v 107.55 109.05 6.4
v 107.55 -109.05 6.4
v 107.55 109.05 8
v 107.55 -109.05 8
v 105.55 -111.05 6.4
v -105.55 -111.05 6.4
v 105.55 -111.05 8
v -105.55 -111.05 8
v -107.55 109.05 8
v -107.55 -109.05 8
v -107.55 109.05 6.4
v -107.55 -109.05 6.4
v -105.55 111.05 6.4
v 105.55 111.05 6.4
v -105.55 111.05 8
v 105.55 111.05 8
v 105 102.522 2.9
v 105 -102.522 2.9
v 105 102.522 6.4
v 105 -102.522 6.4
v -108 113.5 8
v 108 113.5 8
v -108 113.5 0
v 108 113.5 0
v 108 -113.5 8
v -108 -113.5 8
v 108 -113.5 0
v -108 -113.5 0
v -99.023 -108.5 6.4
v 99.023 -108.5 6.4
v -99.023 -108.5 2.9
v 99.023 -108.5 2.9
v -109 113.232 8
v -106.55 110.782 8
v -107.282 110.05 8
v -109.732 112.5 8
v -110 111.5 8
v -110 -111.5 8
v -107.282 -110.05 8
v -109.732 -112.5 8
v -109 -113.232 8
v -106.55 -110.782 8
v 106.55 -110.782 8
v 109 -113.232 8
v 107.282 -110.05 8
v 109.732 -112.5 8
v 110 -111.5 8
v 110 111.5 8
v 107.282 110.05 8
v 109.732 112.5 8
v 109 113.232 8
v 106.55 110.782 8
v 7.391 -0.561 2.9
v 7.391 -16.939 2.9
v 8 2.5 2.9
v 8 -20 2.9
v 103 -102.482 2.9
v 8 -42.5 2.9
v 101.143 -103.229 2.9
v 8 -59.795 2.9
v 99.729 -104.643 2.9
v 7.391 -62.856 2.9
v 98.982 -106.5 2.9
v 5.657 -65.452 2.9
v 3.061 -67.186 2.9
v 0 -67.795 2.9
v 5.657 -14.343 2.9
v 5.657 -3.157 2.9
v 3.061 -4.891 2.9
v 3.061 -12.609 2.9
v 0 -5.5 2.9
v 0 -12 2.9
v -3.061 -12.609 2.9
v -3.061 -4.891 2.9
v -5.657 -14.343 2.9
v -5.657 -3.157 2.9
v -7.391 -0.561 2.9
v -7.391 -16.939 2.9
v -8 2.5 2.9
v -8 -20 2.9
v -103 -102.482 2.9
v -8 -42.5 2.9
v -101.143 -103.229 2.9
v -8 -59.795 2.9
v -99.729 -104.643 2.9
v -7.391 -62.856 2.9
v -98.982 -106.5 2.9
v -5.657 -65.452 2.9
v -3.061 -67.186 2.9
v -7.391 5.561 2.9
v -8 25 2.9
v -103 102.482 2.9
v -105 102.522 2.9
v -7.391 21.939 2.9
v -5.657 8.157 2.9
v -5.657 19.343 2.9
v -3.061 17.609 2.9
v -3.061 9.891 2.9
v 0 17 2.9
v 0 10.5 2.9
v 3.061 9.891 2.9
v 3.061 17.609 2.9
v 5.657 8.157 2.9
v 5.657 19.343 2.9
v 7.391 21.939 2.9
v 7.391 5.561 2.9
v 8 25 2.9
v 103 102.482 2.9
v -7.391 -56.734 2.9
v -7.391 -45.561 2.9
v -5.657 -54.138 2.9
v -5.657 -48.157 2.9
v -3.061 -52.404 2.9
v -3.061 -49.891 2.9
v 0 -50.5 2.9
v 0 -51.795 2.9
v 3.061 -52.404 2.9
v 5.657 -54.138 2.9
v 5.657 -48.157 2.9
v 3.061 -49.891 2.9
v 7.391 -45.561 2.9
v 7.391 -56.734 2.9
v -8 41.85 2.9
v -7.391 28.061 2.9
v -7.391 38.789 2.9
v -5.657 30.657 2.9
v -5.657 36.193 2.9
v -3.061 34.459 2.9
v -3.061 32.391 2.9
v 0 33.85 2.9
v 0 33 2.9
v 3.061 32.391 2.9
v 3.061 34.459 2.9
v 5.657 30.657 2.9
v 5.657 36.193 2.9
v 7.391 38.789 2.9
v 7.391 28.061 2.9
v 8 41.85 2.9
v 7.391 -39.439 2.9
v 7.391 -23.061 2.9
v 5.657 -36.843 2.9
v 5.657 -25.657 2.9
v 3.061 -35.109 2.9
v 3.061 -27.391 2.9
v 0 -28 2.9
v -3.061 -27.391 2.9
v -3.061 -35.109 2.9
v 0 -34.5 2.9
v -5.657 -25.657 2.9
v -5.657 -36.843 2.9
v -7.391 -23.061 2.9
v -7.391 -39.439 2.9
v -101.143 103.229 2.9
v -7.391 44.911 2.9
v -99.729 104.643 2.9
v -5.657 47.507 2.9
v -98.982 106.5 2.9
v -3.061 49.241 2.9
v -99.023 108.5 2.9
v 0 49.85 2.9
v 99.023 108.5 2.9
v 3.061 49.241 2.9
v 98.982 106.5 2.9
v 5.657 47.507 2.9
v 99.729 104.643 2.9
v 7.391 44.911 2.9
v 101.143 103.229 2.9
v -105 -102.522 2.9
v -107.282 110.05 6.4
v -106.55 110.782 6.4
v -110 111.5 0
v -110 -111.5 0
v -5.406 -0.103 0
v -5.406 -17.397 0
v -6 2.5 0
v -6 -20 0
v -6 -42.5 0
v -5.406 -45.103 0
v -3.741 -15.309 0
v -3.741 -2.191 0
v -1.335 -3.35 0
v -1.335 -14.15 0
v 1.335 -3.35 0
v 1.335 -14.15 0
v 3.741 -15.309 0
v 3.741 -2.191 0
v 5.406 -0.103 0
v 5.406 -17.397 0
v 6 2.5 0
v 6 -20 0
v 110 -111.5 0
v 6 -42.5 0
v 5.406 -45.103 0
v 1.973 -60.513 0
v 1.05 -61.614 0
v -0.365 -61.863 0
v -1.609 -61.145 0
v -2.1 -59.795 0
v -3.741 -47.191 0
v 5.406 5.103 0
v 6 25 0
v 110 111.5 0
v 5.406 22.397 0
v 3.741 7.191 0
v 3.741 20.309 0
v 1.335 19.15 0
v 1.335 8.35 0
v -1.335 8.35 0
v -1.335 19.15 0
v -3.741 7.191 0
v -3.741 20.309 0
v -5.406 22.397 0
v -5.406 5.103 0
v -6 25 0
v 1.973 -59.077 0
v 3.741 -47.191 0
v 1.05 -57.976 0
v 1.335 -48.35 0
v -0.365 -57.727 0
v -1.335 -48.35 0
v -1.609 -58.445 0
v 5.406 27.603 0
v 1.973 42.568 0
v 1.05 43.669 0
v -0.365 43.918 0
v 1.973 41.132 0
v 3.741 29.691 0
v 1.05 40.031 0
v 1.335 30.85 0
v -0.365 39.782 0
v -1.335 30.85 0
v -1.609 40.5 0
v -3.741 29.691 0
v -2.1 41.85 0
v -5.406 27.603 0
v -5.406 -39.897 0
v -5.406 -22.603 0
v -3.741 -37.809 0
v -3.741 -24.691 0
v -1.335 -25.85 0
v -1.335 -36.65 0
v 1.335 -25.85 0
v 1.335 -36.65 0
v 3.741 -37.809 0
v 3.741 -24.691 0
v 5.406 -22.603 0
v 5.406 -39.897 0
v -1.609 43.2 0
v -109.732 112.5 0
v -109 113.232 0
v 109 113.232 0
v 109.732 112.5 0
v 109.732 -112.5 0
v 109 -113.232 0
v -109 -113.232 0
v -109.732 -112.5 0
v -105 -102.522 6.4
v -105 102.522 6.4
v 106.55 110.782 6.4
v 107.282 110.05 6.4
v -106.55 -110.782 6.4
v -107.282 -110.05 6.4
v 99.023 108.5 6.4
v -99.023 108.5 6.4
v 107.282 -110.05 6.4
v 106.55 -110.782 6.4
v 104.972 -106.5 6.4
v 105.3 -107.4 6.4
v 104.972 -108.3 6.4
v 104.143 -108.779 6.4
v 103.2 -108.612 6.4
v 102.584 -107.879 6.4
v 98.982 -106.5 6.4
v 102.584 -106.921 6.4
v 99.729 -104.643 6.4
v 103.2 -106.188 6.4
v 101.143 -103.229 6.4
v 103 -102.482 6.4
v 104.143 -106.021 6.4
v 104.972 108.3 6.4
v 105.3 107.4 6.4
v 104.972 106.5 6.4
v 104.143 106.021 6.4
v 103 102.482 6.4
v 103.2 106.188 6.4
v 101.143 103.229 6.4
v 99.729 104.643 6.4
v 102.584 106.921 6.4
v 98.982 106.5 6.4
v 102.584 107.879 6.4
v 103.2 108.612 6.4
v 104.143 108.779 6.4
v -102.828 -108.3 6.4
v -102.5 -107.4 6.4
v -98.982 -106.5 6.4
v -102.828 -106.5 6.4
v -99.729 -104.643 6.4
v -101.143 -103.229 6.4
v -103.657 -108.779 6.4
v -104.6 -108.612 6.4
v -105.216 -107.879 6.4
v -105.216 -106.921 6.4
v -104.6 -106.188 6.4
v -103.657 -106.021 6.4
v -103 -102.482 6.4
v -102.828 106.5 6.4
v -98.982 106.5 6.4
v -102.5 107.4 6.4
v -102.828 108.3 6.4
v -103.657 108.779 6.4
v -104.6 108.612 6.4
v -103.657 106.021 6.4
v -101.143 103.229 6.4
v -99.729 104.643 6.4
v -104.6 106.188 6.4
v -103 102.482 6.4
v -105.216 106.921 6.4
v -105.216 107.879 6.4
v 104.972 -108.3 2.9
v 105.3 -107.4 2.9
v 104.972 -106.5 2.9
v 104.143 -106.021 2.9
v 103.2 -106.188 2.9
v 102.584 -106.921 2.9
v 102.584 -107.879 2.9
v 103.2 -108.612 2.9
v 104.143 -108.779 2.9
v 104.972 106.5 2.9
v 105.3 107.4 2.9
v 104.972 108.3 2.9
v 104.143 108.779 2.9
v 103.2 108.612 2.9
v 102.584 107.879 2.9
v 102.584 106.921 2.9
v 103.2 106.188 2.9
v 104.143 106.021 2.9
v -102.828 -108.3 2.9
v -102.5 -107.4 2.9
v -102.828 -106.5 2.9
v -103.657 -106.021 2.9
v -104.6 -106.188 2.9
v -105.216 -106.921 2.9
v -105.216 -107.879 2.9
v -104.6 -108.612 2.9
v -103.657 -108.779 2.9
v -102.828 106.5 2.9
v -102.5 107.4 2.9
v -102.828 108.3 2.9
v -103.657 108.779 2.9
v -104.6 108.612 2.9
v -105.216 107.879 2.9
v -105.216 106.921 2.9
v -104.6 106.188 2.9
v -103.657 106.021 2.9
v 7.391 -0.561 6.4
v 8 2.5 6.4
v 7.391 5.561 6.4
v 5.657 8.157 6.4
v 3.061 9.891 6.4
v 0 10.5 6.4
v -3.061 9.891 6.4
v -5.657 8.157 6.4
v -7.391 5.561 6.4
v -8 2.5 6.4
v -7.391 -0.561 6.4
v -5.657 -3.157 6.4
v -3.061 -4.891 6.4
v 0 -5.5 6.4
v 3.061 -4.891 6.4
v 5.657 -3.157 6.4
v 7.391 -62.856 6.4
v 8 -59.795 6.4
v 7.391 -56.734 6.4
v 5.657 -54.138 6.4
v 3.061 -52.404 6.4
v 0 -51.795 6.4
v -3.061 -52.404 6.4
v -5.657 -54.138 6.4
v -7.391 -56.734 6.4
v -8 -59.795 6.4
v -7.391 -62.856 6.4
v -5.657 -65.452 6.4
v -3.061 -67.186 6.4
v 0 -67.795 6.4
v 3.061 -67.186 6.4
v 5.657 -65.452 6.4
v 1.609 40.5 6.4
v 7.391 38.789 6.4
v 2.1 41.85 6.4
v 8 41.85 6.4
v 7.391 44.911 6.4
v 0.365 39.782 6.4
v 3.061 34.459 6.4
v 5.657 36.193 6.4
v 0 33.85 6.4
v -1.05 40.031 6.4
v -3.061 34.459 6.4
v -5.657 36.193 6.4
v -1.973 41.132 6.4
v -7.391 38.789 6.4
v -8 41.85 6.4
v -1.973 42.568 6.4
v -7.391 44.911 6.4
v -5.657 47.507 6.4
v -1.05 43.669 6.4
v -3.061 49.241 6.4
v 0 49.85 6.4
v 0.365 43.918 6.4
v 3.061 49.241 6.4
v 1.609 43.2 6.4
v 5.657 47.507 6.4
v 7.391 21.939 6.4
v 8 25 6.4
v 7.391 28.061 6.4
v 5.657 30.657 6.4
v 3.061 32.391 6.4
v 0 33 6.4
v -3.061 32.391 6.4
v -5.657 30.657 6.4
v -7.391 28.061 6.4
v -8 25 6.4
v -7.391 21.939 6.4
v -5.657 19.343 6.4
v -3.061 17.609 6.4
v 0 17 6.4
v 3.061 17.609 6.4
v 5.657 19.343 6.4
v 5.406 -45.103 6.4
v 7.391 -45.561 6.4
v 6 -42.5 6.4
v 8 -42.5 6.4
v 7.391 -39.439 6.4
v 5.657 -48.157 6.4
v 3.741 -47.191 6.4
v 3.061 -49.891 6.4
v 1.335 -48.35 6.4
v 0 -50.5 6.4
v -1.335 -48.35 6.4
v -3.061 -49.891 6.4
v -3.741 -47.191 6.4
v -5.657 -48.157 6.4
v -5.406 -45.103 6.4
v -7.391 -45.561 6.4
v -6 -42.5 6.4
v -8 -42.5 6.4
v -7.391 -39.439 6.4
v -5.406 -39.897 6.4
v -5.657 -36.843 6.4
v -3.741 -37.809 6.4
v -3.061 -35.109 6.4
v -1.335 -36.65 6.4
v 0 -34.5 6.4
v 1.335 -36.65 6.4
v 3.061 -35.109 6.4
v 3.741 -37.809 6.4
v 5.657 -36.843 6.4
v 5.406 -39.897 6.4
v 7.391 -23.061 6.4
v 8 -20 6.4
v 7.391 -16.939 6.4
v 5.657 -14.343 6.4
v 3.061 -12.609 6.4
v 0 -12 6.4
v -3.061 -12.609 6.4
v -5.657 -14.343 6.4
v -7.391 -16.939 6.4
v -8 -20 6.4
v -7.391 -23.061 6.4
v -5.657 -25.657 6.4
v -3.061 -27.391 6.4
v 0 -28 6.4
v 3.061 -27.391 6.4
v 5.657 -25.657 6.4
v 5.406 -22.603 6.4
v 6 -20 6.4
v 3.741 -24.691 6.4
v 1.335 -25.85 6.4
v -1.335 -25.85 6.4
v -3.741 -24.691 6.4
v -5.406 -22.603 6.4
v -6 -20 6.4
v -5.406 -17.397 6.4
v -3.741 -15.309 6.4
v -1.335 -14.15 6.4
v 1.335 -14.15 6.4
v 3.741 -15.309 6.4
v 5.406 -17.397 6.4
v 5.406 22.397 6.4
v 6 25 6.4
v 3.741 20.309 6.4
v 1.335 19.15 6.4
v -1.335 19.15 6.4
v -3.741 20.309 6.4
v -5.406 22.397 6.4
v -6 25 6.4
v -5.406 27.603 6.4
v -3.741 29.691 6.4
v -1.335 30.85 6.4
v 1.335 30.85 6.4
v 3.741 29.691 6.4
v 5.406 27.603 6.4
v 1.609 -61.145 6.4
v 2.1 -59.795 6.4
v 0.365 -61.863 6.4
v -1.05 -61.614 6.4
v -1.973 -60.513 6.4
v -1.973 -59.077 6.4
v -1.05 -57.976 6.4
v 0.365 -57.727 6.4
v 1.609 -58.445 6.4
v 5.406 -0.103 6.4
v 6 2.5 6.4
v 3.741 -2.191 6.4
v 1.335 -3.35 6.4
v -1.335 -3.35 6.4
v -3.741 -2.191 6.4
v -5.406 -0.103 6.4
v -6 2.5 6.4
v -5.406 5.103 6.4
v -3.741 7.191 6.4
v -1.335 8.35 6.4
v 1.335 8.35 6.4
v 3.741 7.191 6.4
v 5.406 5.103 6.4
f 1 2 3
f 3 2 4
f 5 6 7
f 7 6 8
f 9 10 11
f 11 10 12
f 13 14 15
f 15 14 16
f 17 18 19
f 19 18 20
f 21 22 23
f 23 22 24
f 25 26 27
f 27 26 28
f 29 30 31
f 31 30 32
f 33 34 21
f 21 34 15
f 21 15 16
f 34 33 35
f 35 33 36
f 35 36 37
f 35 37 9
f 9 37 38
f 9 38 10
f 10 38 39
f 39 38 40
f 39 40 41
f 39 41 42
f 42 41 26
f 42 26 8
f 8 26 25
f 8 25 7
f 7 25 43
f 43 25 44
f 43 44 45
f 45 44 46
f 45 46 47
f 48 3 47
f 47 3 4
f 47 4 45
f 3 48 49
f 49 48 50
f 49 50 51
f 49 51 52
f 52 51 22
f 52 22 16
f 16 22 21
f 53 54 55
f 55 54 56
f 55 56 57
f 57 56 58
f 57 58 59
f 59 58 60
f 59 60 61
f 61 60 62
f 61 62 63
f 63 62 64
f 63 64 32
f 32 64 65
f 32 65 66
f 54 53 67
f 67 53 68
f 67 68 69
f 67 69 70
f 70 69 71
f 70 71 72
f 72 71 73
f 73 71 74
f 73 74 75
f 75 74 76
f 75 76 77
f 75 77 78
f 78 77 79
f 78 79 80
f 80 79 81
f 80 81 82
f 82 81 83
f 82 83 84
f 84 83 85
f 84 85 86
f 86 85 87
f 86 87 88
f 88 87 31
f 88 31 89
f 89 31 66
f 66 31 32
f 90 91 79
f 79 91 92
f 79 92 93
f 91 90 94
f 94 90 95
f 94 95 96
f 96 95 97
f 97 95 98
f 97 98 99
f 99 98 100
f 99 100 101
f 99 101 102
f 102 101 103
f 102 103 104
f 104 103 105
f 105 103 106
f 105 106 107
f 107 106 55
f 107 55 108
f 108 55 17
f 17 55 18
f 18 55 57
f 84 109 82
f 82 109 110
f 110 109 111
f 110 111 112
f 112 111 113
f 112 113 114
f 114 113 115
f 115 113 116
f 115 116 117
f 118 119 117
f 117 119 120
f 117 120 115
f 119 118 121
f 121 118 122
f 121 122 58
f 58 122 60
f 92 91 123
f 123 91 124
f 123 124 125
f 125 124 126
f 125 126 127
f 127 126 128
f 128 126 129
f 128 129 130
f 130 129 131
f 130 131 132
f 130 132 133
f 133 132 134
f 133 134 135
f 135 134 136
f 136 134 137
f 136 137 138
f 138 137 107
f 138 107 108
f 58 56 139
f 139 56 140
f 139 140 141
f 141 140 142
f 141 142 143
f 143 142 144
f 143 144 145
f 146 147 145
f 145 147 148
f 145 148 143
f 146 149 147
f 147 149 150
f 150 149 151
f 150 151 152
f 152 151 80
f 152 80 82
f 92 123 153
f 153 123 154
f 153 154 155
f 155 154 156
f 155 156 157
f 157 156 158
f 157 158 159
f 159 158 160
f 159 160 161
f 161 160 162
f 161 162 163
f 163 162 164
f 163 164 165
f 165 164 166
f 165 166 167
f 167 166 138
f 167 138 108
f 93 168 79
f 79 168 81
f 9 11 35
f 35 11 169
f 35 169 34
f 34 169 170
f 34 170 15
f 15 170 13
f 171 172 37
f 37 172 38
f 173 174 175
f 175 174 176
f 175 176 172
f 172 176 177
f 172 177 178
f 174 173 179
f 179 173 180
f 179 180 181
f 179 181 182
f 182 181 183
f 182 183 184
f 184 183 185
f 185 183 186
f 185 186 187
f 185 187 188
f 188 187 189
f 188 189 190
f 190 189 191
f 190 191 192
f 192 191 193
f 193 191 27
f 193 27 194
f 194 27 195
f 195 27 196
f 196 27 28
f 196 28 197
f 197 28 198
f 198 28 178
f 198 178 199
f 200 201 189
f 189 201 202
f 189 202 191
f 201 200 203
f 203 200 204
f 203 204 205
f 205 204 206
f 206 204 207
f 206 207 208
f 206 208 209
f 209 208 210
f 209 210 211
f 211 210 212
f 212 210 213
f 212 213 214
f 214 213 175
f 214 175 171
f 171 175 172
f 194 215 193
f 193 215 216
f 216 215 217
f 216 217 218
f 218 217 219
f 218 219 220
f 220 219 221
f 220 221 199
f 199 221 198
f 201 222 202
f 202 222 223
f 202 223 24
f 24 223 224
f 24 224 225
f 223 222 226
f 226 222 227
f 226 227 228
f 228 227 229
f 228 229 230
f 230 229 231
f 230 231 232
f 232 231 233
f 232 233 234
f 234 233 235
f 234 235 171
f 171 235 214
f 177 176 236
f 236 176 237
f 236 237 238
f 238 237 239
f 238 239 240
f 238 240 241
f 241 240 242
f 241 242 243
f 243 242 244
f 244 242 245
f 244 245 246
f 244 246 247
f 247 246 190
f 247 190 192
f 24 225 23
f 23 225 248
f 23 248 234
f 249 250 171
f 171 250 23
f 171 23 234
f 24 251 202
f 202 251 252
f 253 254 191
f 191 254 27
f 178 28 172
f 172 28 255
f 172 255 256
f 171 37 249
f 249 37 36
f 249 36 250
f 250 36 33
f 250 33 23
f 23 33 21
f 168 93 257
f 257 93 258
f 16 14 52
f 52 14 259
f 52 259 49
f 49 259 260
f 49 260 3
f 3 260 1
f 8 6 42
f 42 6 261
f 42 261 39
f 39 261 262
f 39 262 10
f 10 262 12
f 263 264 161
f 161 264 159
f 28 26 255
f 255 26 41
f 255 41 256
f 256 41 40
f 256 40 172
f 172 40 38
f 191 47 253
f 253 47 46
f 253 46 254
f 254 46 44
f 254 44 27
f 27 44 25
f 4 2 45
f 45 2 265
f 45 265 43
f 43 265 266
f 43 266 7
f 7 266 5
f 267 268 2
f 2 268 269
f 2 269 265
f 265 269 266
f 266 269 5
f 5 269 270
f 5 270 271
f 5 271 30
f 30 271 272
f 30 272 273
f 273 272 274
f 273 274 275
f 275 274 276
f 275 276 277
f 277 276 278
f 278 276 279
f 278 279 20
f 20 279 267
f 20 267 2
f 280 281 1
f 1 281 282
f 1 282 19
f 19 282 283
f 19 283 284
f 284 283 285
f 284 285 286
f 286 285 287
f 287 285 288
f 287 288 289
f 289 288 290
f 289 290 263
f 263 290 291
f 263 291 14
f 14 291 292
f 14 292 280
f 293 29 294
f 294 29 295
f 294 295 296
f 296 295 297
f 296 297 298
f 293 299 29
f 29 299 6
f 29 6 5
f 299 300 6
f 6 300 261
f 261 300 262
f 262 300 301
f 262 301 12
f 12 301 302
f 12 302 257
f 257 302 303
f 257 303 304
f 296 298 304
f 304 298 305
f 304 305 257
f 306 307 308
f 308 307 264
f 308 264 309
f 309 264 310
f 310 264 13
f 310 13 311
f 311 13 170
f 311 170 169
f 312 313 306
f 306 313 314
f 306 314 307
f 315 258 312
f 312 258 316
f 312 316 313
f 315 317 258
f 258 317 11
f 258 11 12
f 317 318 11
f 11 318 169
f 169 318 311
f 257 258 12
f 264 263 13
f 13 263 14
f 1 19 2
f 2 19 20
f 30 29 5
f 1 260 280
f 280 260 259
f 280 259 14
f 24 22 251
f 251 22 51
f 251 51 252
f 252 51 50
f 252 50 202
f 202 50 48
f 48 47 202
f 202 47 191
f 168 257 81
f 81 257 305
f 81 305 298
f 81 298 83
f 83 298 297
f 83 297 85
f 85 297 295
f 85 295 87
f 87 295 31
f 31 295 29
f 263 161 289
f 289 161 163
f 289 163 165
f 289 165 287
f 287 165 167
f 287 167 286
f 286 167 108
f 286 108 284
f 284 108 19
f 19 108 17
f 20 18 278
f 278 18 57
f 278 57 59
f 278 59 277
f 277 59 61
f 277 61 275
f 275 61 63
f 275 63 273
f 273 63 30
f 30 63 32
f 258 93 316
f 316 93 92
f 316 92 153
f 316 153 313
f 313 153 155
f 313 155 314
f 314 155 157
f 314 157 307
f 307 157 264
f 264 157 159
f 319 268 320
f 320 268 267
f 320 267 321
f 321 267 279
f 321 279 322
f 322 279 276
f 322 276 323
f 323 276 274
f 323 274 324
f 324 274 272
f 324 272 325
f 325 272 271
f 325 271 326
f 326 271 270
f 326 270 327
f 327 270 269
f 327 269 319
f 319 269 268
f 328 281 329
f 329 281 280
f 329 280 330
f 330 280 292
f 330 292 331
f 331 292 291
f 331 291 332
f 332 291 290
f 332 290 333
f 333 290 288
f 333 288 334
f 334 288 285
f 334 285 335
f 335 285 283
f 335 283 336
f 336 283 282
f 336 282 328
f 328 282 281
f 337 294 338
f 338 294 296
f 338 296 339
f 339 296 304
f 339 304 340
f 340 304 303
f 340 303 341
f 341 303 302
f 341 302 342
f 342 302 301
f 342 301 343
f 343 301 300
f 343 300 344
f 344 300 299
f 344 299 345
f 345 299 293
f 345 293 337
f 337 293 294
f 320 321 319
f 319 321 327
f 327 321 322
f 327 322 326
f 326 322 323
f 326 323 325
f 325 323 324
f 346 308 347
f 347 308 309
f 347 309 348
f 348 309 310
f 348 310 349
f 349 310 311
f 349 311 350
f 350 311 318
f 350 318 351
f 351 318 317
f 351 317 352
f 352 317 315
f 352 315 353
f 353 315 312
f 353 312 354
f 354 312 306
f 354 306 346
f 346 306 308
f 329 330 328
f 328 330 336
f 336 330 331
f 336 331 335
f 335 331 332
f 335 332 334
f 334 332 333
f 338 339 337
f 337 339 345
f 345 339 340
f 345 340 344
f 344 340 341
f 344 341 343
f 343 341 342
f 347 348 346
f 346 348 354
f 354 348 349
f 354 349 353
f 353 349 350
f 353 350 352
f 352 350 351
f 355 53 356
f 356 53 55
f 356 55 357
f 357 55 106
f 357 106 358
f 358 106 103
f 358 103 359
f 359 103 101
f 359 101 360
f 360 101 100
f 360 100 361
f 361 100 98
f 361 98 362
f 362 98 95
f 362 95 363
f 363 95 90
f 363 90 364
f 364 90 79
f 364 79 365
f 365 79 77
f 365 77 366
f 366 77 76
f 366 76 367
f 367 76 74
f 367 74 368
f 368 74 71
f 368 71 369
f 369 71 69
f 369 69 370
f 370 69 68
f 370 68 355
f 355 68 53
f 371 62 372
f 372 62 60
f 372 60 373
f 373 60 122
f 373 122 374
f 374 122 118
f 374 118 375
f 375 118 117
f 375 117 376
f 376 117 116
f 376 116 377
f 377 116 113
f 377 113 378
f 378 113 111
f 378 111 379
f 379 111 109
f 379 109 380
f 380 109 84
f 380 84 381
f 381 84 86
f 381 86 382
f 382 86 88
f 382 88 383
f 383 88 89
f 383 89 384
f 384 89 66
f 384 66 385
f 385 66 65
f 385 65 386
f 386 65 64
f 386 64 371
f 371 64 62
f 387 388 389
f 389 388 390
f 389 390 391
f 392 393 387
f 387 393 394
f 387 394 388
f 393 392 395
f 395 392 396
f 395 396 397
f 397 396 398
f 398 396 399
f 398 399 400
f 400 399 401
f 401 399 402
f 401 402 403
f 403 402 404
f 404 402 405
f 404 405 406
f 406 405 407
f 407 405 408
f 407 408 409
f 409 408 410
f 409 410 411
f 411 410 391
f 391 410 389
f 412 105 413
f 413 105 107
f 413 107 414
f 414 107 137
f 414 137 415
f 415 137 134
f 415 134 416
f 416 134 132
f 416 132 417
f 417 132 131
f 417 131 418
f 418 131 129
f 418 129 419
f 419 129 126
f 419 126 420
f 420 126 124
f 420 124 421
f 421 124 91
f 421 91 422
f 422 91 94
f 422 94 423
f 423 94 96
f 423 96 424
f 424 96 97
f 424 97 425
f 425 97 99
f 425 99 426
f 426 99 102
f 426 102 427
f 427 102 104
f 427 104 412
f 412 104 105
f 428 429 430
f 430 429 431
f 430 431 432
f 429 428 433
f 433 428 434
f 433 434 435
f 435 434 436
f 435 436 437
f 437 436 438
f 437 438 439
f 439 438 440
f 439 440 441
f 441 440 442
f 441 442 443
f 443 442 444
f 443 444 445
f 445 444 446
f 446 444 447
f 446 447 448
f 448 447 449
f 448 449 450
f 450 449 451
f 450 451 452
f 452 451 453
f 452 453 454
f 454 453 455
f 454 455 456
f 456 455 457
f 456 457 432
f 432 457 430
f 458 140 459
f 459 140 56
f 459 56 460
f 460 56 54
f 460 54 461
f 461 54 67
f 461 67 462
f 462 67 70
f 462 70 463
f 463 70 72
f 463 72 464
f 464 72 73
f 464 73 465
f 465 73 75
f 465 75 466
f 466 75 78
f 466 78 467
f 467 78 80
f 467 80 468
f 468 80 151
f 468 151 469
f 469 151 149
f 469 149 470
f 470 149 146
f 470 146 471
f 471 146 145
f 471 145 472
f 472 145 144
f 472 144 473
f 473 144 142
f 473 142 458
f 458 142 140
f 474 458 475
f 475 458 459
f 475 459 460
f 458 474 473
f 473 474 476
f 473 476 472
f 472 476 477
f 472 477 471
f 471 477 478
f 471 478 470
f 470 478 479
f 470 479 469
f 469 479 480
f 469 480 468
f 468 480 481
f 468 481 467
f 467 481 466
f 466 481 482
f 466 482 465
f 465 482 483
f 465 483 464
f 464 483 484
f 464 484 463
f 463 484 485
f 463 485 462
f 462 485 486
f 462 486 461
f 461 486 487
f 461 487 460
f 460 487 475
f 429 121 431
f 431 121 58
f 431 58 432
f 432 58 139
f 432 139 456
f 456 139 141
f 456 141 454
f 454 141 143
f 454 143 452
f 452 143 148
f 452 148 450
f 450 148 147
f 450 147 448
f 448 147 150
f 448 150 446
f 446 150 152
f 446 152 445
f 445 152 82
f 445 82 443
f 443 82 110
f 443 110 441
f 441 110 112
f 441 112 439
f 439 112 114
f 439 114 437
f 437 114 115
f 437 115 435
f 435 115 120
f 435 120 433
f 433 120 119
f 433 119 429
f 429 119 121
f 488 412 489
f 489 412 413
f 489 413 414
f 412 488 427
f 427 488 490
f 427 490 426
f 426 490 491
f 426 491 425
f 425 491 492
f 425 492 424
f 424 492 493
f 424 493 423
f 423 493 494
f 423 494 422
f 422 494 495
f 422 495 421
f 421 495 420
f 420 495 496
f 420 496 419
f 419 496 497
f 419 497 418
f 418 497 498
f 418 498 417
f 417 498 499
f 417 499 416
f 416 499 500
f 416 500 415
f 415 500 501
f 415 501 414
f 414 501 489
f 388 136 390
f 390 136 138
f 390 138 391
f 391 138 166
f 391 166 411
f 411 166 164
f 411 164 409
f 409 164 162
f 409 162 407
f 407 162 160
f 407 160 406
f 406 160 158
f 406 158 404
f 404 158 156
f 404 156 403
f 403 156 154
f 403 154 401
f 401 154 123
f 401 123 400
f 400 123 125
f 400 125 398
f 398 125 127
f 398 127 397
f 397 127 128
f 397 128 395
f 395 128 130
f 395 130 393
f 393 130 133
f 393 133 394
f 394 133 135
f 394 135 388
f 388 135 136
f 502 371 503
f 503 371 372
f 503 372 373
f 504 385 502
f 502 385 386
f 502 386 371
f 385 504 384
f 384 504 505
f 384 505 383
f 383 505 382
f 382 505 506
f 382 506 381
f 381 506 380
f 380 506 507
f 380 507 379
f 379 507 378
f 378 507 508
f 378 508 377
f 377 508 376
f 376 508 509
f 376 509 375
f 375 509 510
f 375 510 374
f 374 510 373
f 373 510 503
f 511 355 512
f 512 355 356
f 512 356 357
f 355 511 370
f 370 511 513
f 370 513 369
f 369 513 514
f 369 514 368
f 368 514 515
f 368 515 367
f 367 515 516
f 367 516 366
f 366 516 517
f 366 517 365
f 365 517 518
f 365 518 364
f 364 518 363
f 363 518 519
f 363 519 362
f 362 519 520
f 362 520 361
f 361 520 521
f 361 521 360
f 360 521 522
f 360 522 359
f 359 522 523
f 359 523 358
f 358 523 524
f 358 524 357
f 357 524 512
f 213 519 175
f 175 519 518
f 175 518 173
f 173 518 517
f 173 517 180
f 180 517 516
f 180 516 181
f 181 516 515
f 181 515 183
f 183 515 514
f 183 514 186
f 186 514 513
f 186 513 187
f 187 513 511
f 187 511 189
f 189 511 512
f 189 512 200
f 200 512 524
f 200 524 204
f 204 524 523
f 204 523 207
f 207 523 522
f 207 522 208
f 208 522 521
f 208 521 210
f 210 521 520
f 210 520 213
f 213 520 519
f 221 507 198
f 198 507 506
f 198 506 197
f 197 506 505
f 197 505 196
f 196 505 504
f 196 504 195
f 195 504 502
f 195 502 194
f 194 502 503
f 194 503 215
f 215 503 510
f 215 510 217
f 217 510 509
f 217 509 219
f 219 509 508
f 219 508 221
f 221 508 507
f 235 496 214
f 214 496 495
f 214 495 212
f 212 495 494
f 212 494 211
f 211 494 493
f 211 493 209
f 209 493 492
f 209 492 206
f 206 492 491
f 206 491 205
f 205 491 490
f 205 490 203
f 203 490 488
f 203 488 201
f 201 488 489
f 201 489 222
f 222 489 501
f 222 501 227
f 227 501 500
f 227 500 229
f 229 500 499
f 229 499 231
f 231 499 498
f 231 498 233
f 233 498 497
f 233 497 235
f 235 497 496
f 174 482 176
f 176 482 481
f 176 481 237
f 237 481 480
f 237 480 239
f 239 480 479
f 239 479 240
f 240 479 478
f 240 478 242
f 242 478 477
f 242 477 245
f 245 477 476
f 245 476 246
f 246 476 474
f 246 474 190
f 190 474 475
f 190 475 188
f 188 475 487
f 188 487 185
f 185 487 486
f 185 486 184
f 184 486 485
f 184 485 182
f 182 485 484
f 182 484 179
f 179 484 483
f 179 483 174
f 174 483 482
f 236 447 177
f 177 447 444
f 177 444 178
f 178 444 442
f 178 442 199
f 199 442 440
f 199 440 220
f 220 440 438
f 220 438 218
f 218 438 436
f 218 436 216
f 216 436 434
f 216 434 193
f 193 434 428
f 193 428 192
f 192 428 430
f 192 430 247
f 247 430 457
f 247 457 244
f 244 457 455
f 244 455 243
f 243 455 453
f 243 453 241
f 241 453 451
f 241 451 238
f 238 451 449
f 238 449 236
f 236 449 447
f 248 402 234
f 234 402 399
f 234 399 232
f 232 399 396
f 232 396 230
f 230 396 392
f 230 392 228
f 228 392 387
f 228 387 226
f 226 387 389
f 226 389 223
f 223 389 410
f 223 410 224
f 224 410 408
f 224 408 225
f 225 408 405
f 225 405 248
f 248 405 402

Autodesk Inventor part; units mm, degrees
ref_plane "YZ Plane" through (0, 0, 0) normal (1, 0, 0) x (0, 1, 0)
ref_plane "XZ Plane" through (0, 0, 0) normal (0, 1, 0) x (-1, 0, 0)
ref_plane "XY Plane" through (0, 0, 0) normal (0, 0, 1) x (1, 0, 0)
sketch "Sketch1" plane through (0, 0, 0) normal (0, 0, 1) x (1, 0, 0)
  line L0 (-110, -113.5) -> (110, -113.5)
  line L1 (110, -113.5) -> (110, 113.5)
  line L2 (110, 113.5) -> (-110, 113.5)
  line L3 (-110, 113.5) -> (-110, -113.5)
  line L4 (-110, -113.5) -> (110, 113.5) construction
  line L5 (110, -113.5) -> (-110, 113.5) construction
  point P0 (0, 0)
  dimension "d0" = 220
  dimension "d1" = 227
extrude "Extrusion1" add sketch "Sketch1" along normal blind 8
sketch "Sketch2" plane through (0, 0, 8) normal (0, 0, 1) x (1, 0, 0)
  line L0 (-107.55, -111.05) -> (107.55, -111.05)
  line L1 (107.55, -111.05) -> (107.55, 111.05)
  line L2 (107.55, 111.05) -> (-107.55, 111.05)
  line L3 (-107.55, 111.05) -> (-107.55, -111.05)
  line L4 (-107.55, -111.05) -> (107.55, 111.05) construction
  line L5 (107.55, -111.05) -> (-107.55, 111.05) construction
  point P0 (0, 0)
  dimension "d4" = 215.1
  dimension "d5" = 222.1
extrude "Extrusion2" cut sketch "Sketch2" against normal blind 1.6
sketch "Sketch3" plane through (0, 0, 6.4) normal (0, 0, 1) x (1, 0, 0)
  line L0 (-105, -108.5) -> (105, -108.5)
  line L1 (105, -108.5) -> (105, 108.5)
  line L2 (105, 108.5) -> (-105, 108.5)
  line L3 (-105, 108.5) -> (-105, -108.5)
  line L4 (-105, -108.5) -> (105, 108.5) construction
  line L5 (105, -108.5) -> (-105, 108.5) construction
  point P0 (0, 0)
  dimension "d8" = 210
  dimension "d9" = 217
extrude "Extrusion3" cut sketch "Sketch3" against normal blind 3.5
fillet "Fillet1" radius 2 8 edges at (-107.55, -111.05, 7.2) (-110, -113.5, 4) (110, -113.5, 4) (107.55, -111.05, 7.2) (110, 113.5, 4) (107.55, 111.05, 7.2) (-110, 113.5, 4) (-107.55, 111.05, 7.2)
sketch "Sketch4" plane through (0, 0, 2.9) normal (0, 0, 1) x (1, 0, 0)
  circle A0 centre (-103.9, 107.4) radius 5
  circle A1 centre (-103.9, -107.4) radius 5
  line L0 (-105.55, 111.05) -> (105.55, 111.05) projected
  circle A2 centre (103.9, 107.4) radius 5
  line L1 (107.55, 109.05) -> (107.55, -109.05) projected
  circle A3 centre (103.9, -107.4) radius 5
  line L2 (-107.55, -109.05) -> (-107.55, 109.05) projected
  point P0 (0, 0)
  dimension "d13" = 10
  dimension "d14" = 10
  dimension "d15" = 214.8
  dimension "d16" = 3.65
  dimension "d17" = 10
  dimension "d18" = 207.8
  dimension "d19" = 3.65
  dimension "d20" = 10
  dimension "d21" = 3.65
  dimension "d22" = 214.8
  dimension "d23" = 207.8
  dimension "d24" = 3.65
extrude "Extrusion4" add sketch "Sketch4" along normal blind 3.5
sketch "Sketch5" plane through (0, 0, 6.4) normal (0, 0, 1) x (1, 0, 0)
  arc A0 (-105, 102.5225) -> (-99.0225, 108.5) centre (-103.9, 107.4) ccw projected
  circle A1 centre (-103.9, 107.4) radius 1.4
  arc A2 (99.0225, 108.5) -> (105, 102.5225) centre (103.9, 107.4) ccw projected
  circle A3 centre (103.9, 107.4) radius 1.4
  arc A4 (105, -102.5225) -> (99.0225, -108.5) centre (103.9, -107.4) ccw projected
  circle A5 centre (103.9, -107.4) radius 1.4
  arc A6 (-99.0225, -108.5) -> (-105, -102.5225) centre (-103.9, -107.4) ccw projected
  circle A7 centre (-103.9, -107.4) radius 1.4
  point P0 (0, 0)
  dimension "d27" = 2.8
  dimension "d28" = 2.8
  dimension "d29" = 2.8
  dimension "d30" = 2.8
extrude "Extrusion5" cut sketch "Sketch5" against normal blind 3.5
sketch "Sketch6" plane through (0, 0, 2.9) normal (0, 0, 1) x (1, 0, 0)
  circle A0 centre (0, -59.795) radius 8
  line L0 (105.55, -111.05) -> (-105.55, -111.05) projected
  circle A1 centre (0, 41.85) radius 8
  line L1 (-105.55, 111.05) -> (105.55, 111.05) projected
  circle A2 centre (0, -42.5) radius 8
  circle A3 centre (0, -20) radius 8
  circle A4 centre (0, 2.5) radius 8
  circle A5 centre (0, 25) radius 8
  point P0 (0, 0)
  dimension "d33" = 16
  dimension "d34" = 51.255
  dimension "d35" = 16
  dimension "d36" = 69.2
  dimension "d37" = 16
  dimension "d38" = 68.55
  dimension "d39" = 16
  dimension "d40" = 16
  dimension "d41" = 16
  dimension "d42" = 22.5
  dimension "d43" = 22.5
  dimension "d44" = 22.5
extrude "Extrusion6" add sketch "Sketch6" along normal blind 3.5
sketch "Sketch7" plane through (0, 41.85, 6.4) normal (0, 0, 1) x (1, 0, 0)
  circle A0 centre (0, 0) radius 8 projected
  circle A1 centre (0, 0) radius 2.1
  circle A2 centre (0, -16.85) radius 8 projected
  circle A3 centre (0, -16.85) radius 6
  circle A4 centre (0, -39.35) radius 8 projected
  circle A5 centre (0, -39.35) radius 6
  circle A6 centre (0, -61.85) radius 8 projected
  circle A7 centre (0, -61.85) radius 6
  circle A8 centre (0, -84.35) radius 8 projected
  circle A9 centre (0, -84.35) radius 6
  circle A10 centre (0, -101.645) radius 8 projected
  circle A11 centre (0, -101.645) radius 2.1
  point P0 (0, -41.85)
  dimension "d47" = 4.2
  dimension "d48" = 12
  dimension "d49" = 12
  dimension "d50" = 12
  dimension "d51" = 12
  dimension "d52" = 4.2
extrude "Extrusion7" cut sketch "Sketch7" against normal through all contours A1 | A3 | A5 | A7 | A9 | A11
properties part number "BasePlate"
